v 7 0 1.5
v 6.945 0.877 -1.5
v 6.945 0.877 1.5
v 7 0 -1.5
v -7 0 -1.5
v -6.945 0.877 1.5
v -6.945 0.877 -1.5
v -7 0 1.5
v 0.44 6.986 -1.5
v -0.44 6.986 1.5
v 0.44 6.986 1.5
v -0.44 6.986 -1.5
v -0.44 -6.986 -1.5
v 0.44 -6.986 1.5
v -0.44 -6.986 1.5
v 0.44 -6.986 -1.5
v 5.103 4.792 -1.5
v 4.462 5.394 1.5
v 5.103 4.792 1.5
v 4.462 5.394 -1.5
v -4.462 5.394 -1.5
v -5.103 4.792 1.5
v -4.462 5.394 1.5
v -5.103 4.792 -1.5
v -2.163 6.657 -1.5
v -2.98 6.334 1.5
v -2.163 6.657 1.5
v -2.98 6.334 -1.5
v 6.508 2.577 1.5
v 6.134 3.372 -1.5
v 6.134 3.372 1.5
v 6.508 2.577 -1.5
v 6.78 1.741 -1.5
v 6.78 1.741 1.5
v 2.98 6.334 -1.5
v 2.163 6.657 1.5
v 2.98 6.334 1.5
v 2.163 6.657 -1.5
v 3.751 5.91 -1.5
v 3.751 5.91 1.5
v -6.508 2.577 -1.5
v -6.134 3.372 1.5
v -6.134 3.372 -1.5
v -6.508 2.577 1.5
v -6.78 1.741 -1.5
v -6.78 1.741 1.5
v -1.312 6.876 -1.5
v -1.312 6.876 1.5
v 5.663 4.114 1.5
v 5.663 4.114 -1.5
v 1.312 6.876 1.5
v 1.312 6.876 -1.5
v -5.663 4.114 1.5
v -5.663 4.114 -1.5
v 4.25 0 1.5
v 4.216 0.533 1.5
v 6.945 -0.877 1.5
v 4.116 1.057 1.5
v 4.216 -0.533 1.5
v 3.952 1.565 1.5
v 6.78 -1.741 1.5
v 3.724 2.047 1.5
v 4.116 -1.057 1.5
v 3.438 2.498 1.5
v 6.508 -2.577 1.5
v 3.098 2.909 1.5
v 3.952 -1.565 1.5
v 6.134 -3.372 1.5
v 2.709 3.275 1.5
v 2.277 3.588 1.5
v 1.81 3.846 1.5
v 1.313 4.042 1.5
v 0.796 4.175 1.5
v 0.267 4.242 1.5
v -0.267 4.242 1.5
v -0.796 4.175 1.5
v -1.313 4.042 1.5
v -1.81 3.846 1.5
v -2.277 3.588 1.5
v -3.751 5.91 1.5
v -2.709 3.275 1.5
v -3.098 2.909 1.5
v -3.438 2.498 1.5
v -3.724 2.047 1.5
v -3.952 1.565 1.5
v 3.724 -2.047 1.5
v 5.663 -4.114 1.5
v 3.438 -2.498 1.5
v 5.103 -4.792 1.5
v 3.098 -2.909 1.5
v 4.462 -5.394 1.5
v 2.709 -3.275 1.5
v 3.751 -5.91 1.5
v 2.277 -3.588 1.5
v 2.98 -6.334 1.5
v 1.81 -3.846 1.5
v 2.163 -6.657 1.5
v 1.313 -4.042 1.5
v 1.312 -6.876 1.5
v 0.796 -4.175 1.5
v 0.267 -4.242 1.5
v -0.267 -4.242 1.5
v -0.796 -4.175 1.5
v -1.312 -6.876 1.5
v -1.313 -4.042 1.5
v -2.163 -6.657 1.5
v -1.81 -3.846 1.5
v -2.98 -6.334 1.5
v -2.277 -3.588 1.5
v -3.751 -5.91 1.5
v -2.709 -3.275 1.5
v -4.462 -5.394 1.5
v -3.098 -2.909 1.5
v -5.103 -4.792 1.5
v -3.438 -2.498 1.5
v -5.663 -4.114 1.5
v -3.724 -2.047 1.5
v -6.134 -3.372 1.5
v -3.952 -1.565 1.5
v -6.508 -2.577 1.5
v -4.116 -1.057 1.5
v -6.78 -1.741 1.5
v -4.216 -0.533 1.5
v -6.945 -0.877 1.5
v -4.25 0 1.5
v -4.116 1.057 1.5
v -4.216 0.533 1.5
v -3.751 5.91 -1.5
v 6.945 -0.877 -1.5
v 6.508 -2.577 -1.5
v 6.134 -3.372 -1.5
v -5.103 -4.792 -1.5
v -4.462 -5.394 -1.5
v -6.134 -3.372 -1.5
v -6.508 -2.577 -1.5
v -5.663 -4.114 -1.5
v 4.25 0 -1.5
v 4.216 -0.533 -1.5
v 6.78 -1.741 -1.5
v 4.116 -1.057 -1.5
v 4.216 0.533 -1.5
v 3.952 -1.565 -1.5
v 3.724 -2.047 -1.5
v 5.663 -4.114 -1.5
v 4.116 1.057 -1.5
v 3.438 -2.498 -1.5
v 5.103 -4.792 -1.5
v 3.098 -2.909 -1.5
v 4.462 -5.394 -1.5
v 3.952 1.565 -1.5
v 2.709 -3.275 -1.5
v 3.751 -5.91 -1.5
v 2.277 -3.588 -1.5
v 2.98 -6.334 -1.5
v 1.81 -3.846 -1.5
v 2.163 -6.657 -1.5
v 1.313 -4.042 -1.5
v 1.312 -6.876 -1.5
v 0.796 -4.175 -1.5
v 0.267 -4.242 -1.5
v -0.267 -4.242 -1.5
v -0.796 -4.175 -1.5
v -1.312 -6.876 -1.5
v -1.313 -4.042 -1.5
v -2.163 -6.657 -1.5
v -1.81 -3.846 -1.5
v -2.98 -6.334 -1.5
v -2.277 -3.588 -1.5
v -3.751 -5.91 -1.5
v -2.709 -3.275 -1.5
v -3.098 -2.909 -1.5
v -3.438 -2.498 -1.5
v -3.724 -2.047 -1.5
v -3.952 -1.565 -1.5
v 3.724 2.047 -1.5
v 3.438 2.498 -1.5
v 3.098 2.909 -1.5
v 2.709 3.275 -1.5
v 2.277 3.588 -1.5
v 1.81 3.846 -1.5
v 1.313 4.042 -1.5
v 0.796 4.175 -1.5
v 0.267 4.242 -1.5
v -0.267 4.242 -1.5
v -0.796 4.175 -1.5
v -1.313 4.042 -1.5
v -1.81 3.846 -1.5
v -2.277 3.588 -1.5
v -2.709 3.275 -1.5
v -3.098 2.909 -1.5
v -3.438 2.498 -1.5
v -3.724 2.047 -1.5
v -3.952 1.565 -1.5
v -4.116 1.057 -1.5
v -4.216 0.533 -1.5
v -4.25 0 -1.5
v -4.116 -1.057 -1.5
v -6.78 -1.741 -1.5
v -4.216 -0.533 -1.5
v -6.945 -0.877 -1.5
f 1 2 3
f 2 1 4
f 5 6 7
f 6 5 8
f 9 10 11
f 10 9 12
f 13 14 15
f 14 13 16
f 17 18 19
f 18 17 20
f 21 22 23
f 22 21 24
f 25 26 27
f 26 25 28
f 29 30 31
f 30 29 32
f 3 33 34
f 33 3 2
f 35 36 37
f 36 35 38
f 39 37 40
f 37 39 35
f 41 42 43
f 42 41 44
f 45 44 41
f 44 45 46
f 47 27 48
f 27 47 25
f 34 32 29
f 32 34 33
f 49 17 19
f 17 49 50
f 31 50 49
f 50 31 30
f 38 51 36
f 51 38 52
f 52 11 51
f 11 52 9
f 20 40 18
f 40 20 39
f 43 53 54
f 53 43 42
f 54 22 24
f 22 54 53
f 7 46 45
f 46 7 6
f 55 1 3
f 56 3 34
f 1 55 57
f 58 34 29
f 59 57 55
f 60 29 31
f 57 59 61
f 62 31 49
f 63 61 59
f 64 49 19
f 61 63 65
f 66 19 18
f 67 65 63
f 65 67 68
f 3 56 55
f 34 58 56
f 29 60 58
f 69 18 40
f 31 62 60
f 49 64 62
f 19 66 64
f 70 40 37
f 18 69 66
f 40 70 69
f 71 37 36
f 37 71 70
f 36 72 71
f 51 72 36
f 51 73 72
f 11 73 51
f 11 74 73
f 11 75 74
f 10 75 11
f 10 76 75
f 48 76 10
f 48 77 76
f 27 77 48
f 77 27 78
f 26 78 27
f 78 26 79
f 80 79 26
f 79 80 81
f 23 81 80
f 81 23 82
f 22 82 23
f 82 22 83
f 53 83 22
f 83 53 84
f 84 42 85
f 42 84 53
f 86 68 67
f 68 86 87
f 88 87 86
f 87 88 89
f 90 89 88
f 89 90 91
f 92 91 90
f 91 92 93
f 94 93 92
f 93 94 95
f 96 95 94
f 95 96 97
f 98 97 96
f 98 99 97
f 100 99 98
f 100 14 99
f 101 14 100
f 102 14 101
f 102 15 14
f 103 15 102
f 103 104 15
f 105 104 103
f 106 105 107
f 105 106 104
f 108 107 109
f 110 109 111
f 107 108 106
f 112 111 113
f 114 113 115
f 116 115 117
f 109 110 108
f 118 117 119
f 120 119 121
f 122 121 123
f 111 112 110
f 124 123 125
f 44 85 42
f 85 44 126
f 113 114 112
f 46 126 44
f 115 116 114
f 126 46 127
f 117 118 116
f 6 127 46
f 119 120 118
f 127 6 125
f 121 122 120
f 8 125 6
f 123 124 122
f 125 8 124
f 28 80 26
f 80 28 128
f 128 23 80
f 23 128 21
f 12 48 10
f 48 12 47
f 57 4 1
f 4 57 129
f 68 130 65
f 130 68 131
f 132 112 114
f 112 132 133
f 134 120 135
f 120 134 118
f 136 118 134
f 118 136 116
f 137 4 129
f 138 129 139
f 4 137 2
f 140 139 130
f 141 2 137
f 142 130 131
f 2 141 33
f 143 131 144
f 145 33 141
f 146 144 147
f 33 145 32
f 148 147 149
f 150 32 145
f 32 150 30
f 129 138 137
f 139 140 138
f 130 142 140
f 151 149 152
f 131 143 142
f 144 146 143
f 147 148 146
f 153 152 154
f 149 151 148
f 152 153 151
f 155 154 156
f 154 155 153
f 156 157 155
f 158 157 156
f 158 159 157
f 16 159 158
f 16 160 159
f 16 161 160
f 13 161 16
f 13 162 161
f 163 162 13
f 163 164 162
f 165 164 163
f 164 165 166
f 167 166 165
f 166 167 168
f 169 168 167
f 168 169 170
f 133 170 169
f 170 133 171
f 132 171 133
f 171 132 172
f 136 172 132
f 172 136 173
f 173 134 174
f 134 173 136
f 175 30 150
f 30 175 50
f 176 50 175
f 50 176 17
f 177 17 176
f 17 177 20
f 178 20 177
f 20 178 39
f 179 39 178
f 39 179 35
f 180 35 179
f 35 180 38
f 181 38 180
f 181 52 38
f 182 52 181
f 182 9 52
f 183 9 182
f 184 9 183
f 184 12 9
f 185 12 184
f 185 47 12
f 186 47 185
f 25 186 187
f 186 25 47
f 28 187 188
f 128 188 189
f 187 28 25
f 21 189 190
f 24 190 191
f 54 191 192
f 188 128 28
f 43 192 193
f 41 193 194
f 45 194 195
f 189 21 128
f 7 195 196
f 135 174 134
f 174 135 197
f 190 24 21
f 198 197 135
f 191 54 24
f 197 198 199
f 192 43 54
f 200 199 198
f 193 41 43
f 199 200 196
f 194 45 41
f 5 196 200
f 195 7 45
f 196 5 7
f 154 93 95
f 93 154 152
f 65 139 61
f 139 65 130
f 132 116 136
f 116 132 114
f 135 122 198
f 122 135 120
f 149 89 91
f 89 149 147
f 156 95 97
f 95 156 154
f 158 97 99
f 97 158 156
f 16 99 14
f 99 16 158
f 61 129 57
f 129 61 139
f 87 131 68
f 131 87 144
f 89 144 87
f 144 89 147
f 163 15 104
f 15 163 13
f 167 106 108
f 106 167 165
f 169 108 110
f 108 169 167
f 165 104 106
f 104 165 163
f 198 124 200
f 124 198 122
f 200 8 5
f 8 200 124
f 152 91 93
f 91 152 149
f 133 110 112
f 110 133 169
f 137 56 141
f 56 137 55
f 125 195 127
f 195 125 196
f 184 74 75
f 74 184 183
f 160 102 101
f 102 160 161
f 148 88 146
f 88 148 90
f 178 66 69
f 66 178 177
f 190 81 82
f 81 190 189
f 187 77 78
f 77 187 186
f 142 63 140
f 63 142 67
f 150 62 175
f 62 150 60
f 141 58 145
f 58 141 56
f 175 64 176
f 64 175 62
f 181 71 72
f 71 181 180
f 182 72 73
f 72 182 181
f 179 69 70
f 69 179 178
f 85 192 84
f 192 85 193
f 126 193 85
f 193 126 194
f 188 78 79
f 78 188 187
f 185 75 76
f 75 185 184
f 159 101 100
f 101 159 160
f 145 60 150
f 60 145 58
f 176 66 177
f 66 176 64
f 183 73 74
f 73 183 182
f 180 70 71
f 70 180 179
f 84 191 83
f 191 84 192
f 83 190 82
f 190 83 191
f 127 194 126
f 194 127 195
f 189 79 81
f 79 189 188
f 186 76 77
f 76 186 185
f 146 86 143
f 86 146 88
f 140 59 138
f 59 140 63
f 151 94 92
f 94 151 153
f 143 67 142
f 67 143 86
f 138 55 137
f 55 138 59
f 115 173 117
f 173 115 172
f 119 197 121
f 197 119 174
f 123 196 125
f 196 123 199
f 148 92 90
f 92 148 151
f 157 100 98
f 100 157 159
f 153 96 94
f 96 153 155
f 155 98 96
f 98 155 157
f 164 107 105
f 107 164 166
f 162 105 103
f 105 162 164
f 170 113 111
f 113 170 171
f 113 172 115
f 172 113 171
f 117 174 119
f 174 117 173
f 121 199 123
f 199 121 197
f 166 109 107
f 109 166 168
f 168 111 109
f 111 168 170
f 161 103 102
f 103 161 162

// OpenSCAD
$fn = 50;


difference() {
	union() {
		translate(v = [0, 0, -1.5000000000]) {
			cylinder(h = 3, r = 7.0000000000);
		}
	}
	union() {
		translate(v = [0, 0, -100.0000000000]) {
			cylinder(h = 200, r = 4.2500000000);
		}
	}
}
